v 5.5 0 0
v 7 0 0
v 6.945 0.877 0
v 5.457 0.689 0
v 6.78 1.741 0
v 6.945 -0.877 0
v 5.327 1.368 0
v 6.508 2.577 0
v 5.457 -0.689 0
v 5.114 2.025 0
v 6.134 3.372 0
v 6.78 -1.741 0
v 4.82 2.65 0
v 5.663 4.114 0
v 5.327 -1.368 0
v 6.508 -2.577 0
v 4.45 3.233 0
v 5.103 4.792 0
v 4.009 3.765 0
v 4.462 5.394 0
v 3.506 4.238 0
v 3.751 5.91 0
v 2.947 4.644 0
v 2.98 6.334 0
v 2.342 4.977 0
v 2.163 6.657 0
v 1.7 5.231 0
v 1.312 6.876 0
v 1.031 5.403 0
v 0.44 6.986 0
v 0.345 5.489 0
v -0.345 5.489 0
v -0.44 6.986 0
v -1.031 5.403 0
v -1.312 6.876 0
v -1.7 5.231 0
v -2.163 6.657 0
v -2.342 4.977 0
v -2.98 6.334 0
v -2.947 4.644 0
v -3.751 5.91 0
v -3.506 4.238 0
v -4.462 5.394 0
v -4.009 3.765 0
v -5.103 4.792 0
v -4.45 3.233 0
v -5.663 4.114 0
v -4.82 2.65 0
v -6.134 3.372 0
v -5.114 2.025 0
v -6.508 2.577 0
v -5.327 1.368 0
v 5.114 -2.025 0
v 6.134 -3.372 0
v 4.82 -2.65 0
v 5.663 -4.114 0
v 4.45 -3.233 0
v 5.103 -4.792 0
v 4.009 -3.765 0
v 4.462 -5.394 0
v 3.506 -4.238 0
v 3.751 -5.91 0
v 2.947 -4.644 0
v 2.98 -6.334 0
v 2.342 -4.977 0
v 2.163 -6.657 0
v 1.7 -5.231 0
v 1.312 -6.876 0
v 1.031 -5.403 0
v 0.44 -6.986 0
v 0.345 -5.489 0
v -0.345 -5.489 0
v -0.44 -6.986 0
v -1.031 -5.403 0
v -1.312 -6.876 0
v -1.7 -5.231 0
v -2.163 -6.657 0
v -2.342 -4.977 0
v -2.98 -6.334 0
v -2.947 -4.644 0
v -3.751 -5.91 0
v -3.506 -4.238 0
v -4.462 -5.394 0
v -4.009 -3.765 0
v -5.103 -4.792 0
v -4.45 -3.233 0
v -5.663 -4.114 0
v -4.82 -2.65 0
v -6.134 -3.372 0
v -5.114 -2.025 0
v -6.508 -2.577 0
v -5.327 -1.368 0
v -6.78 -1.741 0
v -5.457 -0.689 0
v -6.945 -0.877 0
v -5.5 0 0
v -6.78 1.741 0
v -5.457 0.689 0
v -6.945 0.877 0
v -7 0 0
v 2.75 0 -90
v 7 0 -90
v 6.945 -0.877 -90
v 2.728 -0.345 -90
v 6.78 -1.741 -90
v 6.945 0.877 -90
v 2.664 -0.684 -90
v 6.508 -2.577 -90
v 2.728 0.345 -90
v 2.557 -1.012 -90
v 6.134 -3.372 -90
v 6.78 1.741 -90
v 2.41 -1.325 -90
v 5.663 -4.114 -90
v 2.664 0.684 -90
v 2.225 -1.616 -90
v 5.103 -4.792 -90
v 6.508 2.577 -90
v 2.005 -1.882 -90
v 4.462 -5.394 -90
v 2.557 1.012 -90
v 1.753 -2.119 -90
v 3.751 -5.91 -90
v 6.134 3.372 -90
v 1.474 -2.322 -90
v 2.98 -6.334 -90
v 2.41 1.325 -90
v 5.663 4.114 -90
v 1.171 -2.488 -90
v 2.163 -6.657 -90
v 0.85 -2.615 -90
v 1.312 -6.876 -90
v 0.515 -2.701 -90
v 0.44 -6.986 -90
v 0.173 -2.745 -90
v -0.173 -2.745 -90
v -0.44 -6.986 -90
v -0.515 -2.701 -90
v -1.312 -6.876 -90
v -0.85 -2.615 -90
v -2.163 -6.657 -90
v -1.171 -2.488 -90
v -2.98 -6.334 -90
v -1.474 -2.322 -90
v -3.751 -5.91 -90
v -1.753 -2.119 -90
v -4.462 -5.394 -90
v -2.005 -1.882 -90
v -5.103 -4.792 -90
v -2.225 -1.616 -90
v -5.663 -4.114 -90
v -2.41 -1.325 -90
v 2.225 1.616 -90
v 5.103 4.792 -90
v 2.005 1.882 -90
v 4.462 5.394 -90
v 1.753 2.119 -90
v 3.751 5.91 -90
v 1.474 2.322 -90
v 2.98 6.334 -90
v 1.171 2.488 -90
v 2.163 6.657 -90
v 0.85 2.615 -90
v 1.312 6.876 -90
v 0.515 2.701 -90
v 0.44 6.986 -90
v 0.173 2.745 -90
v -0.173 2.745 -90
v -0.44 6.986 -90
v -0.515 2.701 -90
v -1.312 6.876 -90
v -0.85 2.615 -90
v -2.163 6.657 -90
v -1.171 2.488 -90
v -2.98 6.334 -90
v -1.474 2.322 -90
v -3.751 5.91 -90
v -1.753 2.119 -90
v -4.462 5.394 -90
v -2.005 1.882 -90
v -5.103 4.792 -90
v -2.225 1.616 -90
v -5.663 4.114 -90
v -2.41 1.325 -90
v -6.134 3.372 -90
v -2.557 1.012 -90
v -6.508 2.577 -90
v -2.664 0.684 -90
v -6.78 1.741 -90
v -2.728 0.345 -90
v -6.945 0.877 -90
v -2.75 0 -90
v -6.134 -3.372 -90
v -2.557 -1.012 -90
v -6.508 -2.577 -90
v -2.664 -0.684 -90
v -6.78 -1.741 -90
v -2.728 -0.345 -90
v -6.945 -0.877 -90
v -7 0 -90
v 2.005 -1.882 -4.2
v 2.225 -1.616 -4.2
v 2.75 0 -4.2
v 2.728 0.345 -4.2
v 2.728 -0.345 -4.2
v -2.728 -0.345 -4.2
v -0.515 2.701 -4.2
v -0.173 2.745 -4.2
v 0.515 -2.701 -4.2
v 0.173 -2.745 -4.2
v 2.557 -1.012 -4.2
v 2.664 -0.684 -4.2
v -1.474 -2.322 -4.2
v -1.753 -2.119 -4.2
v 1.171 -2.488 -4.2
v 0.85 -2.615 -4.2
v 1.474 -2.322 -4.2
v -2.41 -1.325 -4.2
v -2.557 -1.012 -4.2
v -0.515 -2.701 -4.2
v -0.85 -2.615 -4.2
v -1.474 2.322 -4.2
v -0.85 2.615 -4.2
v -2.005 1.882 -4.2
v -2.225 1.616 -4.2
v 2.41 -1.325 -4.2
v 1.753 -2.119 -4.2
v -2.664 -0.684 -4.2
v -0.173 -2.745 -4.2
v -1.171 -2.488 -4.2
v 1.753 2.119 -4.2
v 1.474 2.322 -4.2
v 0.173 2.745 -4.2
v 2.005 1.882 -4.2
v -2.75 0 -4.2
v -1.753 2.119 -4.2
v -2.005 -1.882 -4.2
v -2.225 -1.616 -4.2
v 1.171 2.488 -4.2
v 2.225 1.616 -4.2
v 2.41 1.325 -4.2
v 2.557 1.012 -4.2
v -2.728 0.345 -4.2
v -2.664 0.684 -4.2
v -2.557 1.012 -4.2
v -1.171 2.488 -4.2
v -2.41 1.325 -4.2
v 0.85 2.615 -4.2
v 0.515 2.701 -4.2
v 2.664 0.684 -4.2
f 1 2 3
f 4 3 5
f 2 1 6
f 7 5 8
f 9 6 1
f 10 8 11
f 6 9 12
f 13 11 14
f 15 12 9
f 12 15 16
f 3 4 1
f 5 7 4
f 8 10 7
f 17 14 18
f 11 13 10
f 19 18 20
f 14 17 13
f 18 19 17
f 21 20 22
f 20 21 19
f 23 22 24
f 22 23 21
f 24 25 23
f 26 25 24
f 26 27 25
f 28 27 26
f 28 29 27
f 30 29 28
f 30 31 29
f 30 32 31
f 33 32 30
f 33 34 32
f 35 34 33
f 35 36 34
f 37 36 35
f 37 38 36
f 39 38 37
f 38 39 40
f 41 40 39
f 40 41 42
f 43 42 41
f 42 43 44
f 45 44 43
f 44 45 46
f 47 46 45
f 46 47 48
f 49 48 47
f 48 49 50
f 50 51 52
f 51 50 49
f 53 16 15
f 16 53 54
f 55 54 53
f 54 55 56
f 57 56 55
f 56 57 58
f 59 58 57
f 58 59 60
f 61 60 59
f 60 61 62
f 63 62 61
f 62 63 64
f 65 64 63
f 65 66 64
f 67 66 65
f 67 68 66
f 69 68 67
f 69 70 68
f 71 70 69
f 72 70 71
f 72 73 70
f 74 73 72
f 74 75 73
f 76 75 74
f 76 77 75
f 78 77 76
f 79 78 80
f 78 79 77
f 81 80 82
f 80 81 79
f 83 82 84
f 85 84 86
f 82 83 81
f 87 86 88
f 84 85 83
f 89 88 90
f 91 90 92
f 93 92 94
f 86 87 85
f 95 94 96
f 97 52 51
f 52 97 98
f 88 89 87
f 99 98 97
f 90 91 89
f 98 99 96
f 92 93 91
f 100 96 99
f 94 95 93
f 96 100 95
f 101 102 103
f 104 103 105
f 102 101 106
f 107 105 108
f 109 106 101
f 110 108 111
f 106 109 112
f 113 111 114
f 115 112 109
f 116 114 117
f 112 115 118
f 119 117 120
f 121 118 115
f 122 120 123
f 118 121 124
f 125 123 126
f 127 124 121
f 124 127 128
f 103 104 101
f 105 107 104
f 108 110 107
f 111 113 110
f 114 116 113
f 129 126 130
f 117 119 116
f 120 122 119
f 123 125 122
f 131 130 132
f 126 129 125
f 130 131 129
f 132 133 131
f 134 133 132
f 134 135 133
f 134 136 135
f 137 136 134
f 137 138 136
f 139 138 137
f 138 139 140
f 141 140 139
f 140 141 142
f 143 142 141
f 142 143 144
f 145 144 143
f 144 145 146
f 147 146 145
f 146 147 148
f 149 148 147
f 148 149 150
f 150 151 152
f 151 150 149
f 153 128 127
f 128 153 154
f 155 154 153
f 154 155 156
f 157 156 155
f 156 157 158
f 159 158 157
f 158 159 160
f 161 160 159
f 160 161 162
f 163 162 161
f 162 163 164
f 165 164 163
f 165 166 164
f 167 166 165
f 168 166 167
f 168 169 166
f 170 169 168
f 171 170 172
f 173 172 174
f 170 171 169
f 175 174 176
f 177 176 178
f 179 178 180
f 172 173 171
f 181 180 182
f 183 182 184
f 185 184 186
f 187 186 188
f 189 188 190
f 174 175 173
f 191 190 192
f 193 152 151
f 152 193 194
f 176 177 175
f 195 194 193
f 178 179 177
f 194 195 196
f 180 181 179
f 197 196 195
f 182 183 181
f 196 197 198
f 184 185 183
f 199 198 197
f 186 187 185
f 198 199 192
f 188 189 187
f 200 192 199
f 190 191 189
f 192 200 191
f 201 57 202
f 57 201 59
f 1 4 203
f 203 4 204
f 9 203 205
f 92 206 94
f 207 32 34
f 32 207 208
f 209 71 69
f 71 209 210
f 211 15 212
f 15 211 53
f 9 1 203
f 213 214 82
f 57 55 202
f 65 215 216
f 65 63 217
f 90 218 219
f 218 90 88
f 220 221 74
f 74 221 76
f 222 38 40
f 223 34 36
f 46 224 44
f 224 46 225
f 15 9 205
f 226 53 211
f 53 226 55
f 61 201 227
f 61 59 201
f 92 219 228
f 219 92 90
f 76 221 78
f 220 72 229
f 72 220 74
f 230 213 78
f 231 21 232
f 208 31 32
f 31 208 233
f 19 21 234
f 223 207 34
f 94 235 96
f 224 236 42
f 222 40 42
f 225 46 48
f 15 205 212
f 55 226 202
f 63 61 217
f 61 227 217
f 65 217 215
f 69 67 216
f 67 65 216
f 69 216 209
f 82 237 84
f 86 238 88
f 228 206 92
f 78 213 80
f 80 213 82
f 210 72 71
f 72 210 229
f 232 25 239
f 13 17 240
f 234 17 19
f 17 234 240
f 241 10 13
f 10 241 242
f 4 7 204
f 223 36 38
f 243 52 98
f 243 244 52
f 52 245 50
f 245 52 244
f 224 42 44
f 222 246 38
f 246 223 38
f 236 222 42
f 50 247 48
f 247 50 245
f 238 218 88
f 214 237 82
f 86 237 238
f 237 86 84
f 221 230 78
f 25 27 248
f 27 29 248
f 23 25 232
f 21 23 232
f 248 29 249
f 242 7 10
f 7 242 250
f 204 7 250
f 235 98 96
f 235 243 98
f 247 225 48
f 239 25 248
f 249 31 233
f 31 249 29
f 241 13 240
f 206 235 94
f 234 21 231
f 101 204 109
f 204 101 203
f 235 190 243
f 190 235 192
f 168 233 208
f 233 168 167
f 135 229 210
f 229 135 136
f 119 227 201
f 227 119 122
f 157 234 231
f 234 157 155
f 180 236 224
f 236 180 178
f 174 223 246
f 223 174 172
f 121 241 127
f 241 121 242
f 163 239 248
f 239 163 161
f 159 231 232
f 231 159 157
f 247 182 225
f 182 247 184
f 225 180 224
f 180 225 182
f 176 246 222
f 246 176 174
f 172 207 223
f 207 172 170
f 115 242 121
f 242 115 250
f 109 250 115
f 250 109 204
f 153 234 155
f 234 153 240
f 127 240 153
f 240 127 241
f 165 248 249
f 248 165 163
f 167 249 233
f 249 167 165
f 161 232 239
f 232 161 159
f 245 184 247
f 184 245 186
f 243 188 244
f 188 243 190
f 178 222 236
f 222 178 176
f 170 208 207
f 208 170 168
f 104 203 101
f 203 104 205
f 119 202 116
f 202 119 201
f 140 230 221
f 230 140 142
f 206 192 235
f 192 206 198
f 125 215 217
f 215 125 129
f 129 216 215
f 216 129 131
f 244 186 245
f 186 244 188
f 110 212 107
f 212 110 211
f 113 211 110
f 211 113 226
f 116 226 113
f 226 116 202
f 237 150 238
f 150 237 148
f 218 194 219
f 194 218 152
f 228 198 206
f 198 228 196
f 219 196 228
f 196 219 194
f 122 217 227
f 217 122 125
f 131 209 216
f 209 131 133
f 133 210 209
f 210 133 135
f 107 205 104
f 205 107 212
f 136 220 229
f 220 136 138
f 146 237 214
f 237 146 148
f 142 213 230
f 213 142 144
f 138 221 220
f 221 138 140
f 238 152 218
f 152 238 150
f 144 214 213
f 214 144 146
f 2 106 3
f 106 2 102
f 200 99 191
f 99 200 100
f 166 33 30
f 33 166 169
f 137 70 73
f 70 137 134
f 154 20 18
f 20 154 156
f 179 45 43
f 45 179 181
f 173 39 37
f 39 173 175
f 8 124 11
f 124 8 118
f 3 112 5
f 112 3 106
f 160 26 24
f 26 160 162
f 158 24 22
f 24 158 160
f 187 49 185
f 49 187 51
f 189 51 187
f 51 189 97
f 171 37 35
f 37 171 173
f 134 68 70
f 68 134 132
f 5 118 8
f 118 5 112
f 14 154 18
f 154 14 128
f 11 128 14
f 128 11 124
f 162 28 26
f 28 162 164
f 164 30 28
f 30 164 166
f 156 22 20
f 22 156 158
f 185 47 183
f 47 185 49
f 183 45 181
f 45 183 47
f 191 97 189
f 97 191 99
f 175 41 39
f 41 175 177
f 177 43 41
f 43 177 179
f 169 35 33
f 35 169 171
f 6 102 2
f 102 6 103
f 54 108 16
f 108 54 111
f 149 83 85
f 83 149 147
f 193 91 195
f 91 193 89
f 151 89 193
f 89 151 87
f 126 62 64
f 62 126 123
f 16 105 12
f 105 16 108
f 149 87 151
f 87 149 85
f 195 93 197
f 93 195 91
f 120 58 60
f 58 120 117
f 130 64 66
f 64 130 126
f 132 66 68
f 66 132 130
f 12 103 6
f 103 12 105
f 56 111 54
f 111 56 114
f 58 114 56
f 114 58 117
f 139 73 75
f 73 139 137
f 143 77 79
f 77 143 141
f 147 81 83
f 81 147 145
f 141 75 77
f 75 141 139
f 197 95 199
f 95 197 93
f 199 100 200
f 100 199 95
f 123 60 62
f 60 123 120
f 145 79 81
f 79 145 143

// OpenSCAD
$fn = 50;


difference() {
	union() {
		translate(v = [0, 0, -90.0000000000]) {
			cylinder(h = 90, r = 7.0000000000);
		}
	}
	union() {
		translate(v = [0, 0, 0]) {
			rotate(a = [0, 0, 0]) {
				difference() {
					union() {
						#translate(v = [0, 0, -90.0000000000]) {
							cylinder(h = 90, r = 2.2500000000);
						}
						#translate(v = [0, 0, -4.2000000000]) {
							cylinder(h = 4.2000000000, r = 7.0000000000, r1 = 2.7500000000, r2 = 5.5000000000);
						}
						#translate(v = [0, 0, -90.0000000000]) {
							cylinder(h = 90, r = 2.7500000000);
						}
						#translate(v = [0, 0, -90.0000000000]) {
							cylinder(h = 90, r = 2.2500000000);
						}
					}
					union();
				}
			}
		}
	}
}
